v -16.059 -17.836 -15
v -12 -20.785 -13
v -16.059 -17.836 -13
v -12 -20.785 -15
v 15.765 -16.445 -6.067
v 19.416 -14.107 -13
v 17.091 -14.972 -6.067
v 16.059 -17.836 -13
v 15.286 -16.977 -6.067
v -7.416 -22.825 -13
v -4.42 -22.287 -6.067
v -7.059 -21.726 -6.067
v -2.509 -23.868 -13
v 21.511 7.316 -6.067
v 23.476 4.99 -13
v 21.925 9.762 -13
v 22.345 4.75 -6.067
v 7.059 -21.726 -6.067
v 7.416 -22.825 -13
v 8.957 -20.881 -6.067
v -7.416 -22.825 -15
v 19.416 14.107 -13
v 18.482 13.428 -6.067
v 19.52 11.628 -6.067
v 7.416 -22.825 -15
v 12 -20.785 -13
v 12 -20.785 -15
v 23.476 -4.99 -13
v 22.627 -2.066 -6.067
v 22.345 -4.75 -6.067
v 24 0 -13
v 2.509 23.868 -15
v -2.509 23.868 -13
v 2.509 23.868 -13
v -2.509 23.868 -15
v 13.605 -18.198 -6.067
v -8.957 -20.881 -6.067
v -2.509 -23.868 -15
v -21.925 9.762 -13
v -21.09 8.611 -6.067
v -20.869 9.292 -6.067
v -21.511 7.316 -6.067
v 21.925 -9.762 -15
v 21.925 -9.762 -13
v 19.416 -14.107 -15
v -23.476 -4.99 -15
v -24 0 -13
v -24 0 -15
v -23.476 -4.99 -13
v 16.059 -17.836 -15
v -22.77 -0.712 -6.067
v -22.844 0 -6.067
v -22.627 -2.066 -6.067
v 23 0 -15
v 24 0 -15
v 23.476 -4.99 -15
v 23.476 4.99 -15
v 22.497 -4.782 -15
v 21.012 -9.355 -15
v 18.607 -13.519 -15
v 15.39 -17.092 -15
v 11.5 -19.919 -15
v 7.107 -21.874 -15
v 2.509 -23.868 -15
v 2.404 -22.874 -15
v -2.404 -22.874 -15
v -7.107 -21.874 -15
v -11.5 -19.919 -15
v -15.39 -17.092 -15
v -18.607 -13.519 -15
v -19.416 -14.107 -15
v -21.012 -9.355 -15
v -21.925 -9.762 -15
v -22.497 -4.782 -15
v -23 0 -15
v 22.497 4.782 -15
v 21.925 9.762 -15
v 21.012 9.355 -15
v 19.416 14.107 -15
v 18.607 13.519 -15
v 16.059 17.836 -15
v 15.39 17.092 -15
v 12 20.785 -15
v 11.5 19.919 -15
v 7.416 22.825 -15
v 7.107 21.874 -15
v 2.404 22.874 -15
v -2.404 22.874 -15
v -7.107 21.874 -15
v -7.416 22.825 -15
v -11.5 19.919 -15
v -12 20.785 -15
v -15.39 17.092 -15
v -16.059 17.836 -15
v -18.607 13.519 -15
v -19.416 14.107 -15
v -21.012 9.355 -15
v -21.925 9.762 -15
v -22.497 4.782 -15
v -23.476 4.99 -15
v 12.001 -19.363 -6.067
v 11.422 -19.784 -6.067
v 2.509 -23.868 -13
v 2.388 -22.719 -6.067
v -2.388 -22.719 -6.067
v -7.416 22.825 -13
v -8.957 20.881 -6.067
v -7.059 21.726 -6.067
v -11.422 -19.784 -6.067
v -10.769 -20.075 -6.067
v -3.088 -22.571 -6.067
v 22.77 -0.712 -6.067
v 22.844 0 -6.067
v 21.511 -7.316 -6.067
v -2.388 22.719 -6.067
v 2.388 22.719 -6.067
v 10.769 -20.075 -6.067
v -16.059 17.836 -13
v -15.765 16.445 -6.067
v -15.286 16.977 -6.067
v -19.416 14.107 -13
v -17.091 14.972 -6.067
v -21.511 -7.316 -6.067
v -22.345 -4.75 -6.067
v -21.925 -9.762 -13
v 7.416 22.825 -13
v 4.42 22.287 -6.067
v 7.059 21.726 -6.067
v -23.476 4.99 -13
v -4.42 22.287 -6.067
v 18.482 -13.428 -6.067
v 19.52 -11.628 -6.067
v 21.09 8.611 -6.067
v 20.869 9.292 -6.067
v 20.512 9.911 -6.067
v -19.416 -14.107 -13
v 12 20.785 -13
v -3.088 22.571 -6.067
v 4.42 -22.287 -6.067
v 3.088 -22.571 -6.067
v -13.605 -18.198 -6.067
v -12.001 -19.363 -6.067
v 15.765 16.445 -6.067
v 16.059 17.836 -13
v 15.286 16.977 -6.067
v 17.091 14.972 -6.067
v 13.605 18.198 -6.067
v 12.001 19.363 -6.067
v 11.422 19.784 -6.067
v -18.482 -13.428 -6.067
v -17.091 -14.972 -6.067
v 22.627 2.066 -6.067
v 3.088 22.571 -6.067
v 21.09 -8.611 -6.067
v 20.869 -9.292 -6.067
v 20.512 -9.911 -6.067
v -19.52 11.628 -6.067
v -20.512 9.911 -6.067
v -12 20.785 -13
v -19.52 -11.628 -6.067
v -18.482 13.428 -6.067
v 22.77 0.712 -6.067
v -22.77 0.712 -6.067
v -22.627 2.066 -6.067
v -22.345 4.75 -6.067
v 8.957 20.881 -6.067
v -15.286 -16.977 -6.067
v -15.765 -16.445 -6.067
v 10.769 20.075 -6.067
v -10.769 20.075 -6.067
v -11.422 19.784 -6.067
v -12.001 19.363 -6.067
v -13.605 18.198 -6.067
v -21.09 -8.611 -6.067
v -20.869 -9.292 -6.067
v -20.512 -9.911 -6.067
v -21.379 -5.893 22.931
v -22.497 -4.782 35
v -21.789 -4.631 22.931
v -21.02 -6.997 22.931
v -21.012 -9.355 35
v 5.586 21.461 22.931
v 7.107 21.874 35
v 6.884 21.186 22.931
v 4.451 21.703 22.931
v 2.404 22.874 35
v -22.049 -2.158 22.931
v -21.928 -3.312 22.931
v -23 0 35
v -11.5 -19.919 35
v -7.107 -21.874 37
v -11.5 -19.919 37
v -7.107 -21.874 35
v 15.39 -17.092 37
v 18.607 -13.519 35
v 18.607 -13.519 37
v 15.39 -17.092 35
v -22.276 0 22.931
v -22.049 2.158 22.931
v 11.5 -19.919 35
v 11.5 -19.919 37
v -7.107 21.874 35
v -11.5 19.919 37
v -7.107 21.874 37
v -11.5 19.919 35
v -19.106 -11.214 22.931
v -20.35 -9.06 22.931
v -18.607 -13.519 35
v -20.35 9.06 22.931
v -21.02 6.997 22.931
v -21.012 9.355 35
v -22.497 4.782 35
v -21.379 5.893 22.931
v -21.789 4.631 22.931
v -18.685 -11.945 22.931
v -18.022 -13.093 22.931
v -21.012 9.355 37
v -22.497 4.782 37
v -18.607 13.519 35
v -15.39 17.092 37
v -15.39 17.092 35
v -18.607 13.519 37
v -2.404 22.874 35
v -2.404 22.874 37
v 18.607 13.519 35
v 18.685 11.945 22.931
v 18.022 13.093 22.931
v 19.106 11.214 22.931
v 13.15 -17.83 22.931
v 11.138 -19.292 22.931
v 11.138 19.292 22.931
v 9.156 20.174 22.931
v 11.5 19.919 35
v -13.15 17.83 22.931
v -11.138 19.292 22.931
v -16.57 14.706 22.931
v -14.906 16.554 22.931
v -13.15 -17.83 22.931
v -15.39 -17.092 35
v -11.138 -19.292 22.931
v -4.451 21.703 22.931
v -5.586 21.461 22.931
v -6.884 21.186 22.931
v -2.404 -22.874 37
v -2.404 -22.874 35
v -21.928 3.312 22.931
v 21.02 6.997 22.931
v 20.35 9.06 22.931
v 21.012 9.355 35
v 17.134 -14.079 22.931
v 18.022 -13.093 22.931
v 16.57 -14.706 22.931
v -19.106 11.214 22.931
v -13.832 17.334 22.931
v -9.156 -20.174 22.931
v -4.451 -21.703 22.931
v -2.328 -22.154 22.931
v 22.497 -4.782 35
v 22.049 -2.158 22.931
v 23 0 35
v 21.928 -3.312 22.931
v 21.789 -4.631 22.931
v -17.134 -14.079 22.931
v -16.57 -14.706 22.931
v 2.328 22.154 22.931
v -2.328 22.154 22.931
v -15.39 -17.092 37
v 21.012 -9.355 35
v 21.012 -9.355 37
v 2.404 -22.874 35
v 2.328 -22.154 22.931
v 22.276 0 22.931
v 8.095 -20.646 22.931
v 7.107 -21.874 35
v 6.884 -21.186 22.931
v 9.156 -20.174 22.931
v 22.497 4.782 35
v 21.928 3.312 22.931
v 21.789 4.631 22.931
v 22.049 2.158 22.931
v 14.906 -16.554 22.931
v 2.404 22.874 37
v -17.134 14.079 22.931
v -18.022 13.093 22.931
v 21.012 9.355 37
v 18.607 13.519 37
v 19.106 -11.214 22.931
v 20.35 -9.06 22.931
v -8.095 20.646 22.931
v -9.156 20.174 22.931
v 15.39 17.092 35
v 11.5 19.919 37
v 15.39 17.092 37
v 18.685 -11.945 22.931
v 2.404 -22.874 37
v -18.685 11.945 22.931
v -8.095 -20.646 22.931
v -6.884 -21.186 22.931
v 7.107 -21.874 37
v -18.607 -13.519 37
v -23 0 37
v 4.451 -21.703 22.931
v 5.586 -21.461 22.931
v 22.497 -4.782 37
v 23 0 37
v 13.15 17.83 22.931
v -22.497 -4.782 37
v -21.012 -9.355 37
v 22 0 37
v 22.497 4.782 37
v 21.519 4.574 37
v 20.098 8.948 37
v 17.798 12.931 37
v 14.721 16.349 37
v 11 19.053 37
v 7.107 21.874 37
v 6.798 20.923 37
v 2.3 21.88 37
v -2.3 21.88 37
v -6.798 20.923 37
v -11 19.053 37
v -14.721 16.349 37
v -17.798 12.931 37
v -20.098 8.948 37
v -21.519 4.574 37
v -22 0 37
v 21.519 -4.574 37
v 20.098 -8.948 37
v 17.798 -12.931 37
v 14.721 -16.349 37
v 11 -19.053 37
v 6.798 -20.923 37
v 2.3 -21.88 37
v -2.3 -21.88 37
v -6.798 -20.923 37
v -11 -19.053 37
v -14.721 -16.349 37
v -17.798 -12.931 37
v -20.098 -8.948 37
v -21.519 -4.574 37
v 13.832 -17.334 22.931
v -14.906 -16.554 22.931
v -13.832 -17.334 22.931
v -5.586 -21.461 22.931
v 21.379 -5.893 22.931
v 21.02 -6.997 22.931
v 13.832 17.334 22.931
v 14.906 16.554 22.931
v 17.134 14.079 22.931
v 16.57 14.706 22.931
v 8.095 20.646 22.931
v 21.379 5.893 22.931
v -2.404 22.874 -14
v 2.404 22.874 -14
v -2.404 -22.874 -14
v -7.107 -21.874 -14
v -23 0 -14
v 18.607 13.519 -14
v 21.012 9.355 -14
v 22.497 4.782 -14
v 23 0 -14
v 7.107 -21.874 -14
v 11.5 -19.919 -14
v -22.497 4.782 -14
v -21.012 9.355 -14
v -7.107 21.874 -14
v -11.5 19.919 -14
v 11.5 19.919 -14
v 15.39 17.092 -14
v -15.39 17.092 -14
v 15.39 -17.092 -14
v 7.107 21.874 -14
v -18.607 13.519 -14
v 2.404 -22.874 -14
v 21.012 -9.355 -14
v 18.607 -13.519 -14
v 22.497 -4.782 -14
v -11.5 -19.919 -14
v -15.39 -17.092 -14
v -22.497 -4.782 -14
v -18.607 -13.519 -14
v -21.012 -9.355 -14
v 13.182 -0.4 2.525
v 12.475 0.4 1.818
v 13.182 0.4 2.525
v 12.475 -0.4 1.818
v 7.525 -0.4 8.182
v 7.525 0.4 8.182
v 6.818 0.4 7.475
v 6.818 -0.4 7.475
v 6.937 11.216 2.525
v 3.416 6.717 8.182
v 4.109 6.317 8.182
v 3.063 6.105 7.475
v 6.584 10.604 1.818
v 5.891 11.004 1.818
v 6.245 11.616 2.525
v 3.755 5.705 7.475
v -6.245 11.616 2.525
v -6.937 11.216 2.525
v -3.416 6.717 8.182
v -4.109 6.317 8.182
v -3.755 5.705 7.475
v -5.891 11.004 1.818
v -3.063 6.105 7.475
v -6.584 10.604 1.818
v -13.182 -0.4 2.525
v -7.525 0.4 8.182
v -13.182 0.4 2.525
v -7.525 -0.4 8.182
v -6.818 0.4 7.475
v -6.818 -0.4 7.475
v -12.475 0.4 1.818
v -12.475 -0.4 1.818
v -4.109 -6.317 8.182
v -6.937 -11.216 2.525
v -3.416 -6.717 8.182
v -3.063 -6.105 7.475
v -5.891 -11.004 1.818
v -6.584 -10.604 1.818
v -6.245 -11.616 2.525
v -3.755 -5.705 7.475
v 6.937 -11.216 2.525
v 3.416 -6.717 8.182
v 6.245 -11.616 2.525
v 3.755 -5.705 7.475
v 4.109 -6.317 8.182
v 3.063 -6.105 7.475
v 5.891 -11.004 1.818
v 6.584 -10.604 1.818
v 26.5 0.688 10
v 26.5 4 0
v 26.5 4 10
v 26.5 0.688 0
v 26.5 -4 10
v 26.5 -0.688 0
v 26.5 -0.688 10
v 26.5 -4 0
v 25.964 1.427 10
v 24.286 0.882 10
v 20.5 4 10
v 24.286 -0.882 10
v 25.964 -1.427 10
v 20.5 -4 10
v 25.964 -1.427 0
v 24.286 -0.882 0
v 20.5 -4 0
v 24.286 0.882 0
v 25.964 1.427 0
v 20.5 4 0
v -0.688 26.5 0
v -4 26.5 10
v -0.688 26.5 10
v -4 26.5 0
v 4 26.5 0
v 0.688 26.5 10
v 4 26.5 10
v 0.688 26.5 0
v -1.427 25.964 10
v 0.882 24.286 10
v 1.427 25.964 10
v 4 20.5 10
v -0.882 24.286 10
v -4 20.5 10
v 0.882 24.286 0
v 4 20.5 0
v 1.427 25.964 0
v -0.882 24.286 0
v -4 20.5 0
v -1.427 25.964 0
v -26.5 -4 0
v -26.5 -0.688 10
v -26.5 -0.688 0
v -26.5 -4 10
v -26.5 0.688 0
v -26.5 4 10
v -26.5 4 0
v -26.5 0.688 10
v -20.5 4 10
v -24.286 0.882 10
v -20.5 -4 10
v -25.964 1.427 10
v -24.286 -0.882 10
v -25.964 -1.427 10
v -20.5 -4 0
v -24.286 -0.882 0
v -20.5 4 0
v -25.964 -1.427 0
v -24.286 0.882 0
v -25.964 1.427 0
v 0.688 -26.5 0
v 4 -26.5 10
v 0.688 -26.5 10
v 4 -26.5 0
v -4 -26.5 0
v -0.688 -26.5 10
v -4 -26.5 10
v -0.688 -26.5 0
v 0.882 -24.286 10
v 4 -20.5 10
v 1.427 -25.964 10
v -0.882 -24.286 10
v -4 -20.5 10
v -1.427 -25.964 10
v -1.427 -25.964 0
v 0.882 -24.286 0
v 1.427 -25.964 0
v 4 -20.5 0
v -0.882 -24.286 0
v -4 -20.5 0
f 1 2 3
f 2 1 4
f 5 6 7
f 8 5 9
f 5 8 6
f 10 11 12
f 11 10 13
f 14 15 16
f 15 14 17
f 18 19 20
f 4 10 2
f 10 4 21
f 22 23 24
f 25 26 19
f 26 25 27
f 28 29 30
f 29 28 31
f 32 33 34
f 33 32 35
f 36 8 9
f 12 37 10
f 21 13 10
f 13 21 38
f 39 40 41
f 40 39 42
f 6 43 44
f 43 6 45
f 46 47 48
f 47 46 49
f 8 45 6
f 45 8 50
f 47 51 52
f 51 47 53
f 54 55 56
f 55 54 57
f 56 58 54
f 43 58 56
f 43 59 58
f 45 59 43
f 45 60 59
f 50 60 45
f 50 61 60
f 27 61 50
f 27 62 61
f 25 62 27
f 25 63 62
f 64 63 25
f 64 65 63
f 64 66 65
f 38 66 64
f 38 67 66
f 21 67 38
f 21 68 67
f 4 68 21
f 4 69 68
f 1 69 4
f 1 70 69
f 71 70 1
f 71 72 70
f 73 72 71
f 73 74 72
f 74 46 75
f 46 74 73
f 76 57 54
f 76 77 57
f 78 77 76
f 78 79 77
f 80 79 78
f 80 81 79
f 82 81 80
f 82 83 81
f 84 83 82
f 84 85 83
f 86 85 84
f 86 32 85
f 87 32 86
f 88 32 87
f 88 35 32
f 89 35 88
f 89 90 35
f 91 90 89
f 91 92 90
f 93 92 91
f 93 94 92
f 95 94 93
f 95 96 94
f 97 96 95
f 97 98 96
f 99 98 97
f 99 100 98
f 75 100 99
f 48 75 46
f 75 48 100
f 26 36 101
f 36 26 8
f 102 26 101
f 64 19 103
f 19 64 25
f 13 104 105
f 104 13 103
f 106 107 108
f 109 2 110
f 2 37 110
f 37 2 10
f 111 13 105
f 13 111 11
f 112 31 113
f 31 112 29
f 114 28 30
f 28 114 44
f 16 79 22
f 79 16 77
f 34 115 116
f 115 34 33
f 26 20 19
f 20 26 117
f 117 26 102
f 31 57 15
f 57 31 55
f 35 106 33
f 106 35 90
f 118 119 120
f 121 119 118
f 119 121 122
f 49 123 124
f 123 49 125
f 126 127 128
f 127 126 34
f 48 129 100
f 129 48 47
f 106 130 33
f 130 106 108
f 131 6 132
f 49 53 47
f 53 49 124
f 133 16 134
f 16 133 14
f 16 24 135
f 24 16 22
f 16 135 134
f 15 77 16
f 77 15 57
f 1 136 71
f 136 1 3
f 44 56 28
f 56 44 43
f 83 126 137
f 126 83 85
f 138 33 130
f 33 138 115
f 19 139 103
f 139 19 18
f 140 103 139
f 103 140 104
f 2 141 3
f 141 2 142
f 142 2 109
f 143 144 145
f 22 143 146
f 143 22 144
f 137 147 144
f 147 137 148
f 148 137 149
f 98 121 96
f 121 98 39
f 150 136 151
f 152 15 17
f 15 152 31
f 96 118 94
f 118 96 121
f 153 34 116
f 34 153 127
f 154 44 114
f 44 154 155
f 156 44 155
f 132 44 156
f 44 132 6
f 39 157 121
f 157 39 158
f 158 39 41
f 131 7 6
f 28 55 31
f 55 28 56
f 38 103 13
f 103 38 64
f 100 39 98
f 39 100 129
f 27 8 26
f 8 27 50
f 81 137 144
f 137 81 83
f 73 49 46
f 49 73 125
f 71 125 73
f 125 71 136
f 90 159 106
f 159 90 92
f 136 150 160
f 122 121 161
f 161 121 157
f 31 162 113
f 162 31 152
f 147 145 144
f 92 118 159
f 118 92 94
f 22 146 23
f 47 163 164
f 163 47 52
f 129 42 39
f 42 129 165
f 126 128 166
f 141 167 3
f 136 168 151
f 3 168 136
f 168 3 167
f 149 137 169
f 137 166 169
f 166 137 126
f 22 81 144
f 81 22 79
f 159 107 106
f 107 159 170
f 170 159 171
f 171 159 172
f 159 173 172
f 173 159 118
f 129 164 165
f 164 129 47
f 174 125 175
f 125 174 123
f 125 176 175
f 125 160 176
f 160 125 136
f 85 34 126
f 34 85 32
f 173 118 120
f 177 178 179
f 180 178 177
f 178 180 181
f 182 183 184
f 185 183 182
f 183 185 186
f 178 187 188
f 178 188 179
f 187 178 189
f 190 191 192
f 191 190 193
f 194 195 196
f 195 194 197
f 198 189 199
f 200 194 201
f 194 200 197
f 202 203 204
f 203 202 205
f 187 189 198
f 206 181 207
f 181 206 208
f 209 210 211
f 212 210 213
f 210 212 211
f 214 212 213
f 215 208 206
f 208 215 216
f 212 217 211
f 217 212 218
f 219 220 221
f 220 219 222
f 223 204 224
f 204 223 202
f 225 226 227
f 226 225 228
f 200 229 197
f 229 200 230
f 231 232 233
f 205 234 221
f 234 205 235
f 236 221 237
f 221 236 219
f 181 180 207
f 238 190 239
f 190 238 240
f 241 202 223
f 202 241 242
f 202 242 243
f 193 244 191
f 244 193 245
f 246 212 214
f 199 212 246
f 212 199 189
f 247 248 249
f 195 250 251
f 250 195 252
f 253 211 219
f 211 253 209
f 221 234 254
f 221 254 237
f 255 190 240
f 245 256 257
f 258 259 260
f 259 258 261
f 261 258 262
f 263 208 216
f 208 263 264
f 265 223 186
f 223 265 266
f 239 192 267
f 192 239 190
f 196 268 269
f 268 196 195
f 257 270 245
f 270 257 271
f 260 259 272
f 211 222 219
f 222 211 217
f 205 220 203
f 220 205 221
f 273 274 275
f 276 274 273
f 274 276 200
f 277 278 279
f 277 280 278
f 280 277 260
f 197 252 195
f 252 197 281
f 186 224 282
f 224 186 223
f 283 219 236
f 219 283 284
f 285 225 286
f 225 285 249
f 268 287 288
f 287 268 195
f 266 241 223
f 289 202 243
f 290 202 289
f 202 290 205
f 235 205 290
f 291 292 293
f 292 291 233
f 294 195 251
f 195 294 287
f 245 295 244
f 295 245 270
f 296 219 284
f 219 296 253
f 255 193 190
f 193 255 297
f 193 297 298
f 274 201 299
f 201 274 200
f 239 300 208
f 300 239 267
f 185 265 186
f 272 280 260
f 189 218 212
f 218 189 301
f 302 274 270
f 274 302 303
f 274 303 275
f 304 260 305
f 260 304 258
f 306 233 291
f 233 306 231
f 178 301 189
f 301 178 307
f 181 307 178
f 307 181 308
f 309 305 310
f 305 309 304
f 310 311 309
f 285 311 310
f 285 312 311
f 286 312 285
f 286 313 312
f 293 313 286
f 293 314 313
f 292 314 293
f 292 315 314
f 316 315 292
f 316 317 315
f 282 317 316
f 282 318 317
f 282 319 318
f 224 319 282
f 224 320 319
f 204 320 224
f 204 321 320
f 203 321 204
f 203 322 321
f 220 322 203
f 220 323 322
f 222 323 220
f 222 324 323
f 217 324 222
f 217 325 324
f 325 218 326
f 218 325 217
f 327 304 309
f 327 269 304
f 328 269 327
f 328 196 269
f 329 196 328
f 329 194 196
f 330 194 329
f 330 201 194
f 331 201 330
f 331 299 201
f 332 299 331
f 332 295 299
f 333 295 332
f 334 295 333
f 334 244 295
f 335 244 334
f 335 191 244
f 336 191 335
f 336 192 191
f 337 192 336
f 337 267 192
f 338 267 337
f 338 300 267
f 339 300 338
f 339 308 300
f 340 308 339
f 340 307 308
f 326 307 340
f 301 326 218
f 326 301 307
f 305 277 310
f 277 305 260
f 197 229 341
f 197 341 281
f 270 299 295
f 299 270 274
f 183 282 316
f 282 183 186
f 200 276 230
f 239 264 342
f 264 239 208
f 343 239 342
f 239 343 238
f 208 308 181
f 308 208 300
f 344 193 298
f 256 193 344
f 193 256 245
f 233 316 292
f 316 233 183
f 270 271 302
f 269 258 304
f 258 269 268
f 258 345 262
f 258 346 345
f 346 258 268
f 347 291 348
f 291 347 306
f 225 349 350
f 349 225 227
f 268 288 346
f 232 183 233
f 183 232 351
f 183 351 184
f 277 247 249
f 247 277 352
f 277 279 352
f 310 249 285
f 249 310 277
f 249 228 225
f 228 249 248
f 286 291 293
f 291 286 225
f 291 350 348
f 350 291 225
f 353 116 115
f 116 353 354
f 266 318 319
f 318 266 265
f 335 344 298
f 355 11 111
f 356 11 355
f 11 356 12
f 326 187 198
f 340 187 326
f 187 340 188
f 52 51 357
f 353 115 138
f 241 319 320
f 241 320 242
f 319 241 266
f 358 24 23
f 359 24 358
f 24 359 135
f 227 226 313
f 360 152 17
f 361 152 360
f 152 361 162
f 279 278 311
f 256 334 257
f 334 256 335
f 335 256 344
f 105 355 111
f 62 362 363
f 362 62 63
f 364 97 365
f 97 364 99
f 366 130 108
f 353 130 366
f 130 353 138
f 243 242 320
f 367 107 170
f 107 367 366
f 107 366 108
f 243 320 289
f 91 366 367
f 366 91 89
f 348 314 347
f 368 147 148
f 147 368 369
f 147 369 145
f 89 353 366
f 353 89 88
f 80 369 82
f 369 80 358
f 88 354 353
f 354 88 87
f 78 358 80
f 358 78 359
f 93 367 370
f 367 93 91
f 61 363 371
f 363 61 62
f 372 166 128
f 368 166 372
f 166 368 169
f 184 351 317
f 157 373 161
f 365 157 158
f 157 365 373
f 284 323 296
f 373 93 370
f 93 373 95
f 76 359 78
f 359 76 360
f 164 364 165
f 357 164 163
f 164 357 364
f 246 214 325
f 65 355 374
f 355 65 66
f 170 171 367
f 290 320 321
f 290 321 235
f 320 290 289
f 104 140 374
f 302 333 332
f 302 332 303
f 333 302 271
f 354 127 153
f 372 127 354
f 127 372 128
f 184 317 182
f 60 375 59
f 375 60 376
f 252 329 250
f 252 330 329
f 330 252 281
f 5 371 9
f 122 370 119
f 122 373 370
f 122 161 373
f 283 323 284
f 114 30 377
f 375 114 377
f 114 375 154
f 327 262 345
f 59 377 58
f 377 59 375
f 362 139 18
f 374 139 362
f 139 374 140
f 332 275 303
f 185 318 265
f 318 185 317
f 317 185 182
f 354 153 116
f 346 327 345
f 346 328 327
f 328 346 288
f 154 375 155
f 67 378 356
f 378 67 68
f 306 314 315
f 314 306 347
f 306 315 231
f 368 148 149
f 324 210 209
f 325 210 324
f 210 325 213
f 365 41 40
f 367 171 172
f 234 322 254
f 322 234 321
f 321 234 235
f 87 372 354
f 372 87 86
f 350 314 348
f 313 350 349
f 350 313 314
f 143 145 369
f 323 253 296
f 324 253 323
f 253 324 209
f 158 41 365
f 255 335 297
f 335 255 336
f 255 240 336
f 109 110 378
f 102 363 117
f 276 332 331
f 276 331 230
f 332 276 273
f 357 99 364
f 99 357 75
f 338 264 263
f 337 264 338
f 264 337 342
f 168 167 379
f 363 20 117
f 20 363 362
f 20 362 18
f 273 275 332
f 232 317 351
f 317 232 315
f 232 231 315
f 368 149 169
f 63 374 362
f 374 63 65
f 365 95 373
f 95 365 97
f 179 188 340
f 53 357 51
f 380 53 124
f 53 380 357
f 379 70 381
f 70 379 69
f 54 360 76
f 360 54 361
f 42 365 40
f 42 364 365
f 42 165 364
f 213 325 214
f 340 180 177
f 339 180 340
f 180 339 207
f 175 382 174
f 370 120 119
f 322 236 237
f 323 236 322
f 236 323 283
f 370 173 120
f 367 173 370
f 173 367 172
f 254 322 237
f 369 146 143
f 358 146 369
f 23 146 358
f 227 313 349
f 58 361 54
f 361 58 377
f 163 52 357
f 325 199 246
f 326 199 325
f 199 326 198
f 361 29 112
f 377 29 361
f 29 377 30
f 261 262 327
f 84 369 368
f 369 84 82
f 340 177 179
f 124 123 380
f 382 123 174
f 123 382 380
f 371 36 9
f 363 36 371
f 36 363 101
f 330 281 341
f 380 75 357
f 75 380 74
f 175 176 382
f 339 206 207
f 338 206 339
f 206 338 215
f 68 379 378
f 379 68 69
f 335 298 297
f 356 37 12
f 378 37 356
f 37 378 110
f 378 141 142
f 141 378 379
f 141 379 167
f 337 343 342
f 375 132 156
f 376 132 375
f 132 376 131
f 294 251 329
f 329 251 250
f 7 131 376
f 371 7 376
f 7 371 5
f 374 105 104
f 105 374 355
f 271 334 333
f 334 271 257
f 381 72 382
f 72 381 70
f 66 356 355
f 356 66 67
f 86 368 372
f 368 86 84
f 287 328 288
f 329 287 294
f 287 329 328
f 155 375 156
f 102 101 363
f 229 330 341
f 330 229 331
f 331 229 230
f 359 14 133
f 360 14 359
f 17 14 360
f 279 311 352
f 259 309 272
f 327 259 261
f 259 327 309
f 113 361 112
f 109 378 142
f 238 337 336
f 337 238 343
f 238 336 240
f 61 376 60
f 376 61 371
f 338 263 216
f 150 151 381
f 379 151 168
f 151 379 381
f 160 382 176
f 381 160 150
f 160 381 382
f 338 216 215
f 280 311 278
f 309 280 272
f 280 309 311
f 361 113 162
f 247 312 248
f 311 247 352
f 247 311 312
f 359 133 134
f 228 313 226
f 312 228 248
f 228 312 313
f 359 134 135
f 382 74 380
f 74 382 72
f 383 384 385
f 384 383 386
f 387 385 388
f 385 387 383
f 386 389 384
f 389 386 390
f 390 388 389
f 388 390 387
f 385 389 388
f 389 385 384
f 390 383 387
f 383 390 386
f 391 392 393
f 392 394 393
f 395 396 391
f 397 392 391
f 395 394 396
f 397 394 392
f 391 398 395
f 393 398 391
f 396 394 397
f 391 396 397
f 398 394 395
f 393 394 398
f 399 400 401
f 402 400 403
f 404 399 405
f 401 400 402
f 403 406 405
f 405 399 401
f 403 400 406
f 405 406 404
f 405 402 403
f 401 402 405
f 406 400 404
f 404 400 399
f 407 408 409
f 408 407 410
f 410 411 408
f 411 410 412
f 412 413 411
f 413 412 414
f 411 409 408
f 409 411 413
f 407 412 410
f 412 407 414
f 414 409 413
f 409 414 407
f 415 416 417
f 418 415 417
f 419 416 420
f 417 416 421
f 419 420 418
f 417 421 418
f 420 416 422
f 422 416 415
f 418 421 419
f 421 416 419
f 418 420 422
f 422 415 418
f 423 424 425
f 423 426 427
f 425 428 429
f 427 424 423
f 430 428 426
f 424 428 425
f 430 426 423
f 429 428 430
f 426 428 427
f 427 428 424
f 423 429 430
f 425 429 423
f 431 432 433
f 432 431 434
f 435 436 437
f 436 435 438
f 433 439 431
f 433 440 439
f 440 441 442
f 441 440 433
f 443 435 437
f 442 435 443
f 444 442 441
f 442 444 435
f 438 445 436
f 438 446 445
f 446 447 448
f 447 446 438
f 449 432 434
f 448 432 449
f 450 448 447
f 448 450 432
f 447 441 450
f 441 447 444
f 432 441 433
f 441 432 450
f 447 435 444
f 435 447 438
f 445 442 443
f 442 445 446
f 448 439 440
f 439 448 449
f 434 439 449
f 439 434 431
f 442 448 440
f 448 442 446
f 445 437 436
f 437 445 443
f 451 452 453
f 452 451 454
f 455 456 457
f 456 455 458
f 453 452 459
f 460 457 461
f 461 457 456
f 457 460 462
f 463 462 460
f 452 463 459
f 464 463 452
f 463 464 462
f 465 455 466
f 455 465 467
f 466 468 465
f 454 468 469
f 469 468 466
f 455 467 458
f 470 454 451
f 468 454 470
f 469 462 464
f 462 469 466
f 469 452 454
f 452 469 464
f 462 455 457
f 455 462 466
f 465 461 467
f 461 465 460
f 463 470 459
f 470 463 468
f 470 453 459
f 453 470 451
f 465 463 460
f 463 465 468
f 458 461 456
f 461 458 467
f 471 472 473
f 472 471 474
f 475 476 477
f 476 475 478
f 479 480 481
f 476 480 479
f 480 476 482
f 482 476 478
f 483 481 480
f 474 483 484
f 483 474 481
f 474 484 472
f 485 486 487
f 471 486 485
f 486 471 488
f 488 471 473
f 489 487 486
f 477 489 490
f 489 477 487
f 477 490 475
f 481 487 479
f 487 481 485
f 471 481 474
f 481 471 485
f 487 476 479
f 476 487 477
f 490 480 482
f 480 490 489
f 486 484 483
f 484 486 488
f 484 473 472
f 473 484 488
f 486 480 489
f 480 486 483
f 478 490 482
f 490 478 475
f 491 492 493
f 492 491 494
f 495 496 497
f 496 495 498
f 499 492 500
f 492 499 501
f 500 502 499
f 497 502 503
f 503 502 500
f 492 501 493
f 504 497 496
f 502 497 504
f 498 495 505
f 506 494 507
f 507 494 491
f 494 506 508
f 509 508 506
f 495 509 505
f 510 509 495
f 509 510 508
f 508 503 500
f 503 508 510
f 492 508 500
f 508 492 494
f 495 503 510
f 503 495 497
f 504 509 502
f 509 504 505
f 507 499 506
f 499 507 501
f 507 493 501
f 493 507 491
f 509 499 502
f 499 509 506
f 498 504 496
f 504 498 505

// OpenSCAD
// Airflow Fan Shroud for 3D Printing
// Optimized design for maximum airflow with minimal turbulence

// Fan parameters
fan_diameter = 40; // 40mm fan
fan_thickness = 10;
shroud_extension = 20;

// Airflow optimization parameters
inlet_taper_length = 15;
outlet_taper_length = 25;
wall_thickness = 1.5;
mounting_hole_diameter = 3;
airflow_guide_thickness = 0.8;

module fan_shroud() {
    difference() {
        union() {
            // Main shroud body with inlet taper
            hull() {
                // Fan mounting end
                translate([0, 0, 0])
                    cylinder(h = 2, d = fan_diameter + 2*wall_thickness);
                
                // Inlet end (larger for better airflow)
                translate([0, 0, -inlet_taper_length])
                    cylinder(h = 2, d = fan_diameter + 8);
            }
            
            // Outlet section with gradual expansion
            hull() {
                // Fan mounting end
                translate([0, 0, fan_thickness])
                    cylinder(h = 2, d = fan_diameter + 2*wall_thickness);
                
                // Outlet end (expanded for reduced back pressure)
                translate([0, 0, fan_thickness + outlet_taper_length])
                    cylinder(h = 2, d = fan_diameter + 6);
            }
        }
        
        // Main airflow channel
        hull() {
            // Fan area
            translate([0, 0, -1])
                cylinder(h = fan_thickness + 2, d = fan_diameter);
            
            // Inlet opening (larger)
            translate([0, 0, -inlet_taper_length - 1])
                cylinder(h = 2, d = fan_diameter + 6);
            
            // Outlet opening (expanded)
            translate([0, 0, fan_thickness + outlet_taper_length - 1])
                cylinder(h = 3, d = fan_diameter + 4);
        }
        
        // Fan mounting holes
        for (i = [0:3]) {
            rotate([0, 0, i*90 + 45])
                translate([fan_diameter/2 * 0.7, 0, -1])
                    cylinder(h = fan_thickness + 2, d = mounting_hole_diameter);
        }
        
        // Wire management slot
        translate([fan_diameter/2 - 3, -1, -1])
            cube([6, 2, fan_thickness + 2]);
    }
    
    // Airflow guide vanes (reduce turbulence)
    for (i = [0:5]) {
        rotate([0, 0, i*60])
            translate([fan_diameter/4, 0, fan_thickness/2])
                rotate([0, 45, 0])
                    cube([8, airflow_guide_thickness, 1], center = true);
    }
    
    // Mounting tabs
    for (i = [0:3]) {
        rotate([0, 0, i*90])
            translate([fan_diameter/2 + wall_thickness + 2, 0, fan_thickness/2])
                difference() {
                    cube([6, 8, fan_thickness], center = true);
                    translate([2, 0, 0])
                        cylinder(h = fan_thickness + 1, d = 3, center = true);
                }
    }
}

// Air filter mount (optional)
module air_filter_mount() {
    translate([0, 0, -inlet_taper_length - 3]) {
        difference() {
            cylinder(h = 3, d = fan_diameter + 12);
            cylinder(h = 4, d = fan_diameter + 6);
            
            // Filter holding slots
            for (i = [0:7]) {
                rotate([0, 0, i*45])
                    translate([fan_diameter/2 + 6, 0, 0])
                        cube([3, 1, 4], center = true);
            }
        }
    }
}

// Generate the fan shroud
fan_shroud();

// Uncomment the next line to add air filter mount
// air_filter_mount();
